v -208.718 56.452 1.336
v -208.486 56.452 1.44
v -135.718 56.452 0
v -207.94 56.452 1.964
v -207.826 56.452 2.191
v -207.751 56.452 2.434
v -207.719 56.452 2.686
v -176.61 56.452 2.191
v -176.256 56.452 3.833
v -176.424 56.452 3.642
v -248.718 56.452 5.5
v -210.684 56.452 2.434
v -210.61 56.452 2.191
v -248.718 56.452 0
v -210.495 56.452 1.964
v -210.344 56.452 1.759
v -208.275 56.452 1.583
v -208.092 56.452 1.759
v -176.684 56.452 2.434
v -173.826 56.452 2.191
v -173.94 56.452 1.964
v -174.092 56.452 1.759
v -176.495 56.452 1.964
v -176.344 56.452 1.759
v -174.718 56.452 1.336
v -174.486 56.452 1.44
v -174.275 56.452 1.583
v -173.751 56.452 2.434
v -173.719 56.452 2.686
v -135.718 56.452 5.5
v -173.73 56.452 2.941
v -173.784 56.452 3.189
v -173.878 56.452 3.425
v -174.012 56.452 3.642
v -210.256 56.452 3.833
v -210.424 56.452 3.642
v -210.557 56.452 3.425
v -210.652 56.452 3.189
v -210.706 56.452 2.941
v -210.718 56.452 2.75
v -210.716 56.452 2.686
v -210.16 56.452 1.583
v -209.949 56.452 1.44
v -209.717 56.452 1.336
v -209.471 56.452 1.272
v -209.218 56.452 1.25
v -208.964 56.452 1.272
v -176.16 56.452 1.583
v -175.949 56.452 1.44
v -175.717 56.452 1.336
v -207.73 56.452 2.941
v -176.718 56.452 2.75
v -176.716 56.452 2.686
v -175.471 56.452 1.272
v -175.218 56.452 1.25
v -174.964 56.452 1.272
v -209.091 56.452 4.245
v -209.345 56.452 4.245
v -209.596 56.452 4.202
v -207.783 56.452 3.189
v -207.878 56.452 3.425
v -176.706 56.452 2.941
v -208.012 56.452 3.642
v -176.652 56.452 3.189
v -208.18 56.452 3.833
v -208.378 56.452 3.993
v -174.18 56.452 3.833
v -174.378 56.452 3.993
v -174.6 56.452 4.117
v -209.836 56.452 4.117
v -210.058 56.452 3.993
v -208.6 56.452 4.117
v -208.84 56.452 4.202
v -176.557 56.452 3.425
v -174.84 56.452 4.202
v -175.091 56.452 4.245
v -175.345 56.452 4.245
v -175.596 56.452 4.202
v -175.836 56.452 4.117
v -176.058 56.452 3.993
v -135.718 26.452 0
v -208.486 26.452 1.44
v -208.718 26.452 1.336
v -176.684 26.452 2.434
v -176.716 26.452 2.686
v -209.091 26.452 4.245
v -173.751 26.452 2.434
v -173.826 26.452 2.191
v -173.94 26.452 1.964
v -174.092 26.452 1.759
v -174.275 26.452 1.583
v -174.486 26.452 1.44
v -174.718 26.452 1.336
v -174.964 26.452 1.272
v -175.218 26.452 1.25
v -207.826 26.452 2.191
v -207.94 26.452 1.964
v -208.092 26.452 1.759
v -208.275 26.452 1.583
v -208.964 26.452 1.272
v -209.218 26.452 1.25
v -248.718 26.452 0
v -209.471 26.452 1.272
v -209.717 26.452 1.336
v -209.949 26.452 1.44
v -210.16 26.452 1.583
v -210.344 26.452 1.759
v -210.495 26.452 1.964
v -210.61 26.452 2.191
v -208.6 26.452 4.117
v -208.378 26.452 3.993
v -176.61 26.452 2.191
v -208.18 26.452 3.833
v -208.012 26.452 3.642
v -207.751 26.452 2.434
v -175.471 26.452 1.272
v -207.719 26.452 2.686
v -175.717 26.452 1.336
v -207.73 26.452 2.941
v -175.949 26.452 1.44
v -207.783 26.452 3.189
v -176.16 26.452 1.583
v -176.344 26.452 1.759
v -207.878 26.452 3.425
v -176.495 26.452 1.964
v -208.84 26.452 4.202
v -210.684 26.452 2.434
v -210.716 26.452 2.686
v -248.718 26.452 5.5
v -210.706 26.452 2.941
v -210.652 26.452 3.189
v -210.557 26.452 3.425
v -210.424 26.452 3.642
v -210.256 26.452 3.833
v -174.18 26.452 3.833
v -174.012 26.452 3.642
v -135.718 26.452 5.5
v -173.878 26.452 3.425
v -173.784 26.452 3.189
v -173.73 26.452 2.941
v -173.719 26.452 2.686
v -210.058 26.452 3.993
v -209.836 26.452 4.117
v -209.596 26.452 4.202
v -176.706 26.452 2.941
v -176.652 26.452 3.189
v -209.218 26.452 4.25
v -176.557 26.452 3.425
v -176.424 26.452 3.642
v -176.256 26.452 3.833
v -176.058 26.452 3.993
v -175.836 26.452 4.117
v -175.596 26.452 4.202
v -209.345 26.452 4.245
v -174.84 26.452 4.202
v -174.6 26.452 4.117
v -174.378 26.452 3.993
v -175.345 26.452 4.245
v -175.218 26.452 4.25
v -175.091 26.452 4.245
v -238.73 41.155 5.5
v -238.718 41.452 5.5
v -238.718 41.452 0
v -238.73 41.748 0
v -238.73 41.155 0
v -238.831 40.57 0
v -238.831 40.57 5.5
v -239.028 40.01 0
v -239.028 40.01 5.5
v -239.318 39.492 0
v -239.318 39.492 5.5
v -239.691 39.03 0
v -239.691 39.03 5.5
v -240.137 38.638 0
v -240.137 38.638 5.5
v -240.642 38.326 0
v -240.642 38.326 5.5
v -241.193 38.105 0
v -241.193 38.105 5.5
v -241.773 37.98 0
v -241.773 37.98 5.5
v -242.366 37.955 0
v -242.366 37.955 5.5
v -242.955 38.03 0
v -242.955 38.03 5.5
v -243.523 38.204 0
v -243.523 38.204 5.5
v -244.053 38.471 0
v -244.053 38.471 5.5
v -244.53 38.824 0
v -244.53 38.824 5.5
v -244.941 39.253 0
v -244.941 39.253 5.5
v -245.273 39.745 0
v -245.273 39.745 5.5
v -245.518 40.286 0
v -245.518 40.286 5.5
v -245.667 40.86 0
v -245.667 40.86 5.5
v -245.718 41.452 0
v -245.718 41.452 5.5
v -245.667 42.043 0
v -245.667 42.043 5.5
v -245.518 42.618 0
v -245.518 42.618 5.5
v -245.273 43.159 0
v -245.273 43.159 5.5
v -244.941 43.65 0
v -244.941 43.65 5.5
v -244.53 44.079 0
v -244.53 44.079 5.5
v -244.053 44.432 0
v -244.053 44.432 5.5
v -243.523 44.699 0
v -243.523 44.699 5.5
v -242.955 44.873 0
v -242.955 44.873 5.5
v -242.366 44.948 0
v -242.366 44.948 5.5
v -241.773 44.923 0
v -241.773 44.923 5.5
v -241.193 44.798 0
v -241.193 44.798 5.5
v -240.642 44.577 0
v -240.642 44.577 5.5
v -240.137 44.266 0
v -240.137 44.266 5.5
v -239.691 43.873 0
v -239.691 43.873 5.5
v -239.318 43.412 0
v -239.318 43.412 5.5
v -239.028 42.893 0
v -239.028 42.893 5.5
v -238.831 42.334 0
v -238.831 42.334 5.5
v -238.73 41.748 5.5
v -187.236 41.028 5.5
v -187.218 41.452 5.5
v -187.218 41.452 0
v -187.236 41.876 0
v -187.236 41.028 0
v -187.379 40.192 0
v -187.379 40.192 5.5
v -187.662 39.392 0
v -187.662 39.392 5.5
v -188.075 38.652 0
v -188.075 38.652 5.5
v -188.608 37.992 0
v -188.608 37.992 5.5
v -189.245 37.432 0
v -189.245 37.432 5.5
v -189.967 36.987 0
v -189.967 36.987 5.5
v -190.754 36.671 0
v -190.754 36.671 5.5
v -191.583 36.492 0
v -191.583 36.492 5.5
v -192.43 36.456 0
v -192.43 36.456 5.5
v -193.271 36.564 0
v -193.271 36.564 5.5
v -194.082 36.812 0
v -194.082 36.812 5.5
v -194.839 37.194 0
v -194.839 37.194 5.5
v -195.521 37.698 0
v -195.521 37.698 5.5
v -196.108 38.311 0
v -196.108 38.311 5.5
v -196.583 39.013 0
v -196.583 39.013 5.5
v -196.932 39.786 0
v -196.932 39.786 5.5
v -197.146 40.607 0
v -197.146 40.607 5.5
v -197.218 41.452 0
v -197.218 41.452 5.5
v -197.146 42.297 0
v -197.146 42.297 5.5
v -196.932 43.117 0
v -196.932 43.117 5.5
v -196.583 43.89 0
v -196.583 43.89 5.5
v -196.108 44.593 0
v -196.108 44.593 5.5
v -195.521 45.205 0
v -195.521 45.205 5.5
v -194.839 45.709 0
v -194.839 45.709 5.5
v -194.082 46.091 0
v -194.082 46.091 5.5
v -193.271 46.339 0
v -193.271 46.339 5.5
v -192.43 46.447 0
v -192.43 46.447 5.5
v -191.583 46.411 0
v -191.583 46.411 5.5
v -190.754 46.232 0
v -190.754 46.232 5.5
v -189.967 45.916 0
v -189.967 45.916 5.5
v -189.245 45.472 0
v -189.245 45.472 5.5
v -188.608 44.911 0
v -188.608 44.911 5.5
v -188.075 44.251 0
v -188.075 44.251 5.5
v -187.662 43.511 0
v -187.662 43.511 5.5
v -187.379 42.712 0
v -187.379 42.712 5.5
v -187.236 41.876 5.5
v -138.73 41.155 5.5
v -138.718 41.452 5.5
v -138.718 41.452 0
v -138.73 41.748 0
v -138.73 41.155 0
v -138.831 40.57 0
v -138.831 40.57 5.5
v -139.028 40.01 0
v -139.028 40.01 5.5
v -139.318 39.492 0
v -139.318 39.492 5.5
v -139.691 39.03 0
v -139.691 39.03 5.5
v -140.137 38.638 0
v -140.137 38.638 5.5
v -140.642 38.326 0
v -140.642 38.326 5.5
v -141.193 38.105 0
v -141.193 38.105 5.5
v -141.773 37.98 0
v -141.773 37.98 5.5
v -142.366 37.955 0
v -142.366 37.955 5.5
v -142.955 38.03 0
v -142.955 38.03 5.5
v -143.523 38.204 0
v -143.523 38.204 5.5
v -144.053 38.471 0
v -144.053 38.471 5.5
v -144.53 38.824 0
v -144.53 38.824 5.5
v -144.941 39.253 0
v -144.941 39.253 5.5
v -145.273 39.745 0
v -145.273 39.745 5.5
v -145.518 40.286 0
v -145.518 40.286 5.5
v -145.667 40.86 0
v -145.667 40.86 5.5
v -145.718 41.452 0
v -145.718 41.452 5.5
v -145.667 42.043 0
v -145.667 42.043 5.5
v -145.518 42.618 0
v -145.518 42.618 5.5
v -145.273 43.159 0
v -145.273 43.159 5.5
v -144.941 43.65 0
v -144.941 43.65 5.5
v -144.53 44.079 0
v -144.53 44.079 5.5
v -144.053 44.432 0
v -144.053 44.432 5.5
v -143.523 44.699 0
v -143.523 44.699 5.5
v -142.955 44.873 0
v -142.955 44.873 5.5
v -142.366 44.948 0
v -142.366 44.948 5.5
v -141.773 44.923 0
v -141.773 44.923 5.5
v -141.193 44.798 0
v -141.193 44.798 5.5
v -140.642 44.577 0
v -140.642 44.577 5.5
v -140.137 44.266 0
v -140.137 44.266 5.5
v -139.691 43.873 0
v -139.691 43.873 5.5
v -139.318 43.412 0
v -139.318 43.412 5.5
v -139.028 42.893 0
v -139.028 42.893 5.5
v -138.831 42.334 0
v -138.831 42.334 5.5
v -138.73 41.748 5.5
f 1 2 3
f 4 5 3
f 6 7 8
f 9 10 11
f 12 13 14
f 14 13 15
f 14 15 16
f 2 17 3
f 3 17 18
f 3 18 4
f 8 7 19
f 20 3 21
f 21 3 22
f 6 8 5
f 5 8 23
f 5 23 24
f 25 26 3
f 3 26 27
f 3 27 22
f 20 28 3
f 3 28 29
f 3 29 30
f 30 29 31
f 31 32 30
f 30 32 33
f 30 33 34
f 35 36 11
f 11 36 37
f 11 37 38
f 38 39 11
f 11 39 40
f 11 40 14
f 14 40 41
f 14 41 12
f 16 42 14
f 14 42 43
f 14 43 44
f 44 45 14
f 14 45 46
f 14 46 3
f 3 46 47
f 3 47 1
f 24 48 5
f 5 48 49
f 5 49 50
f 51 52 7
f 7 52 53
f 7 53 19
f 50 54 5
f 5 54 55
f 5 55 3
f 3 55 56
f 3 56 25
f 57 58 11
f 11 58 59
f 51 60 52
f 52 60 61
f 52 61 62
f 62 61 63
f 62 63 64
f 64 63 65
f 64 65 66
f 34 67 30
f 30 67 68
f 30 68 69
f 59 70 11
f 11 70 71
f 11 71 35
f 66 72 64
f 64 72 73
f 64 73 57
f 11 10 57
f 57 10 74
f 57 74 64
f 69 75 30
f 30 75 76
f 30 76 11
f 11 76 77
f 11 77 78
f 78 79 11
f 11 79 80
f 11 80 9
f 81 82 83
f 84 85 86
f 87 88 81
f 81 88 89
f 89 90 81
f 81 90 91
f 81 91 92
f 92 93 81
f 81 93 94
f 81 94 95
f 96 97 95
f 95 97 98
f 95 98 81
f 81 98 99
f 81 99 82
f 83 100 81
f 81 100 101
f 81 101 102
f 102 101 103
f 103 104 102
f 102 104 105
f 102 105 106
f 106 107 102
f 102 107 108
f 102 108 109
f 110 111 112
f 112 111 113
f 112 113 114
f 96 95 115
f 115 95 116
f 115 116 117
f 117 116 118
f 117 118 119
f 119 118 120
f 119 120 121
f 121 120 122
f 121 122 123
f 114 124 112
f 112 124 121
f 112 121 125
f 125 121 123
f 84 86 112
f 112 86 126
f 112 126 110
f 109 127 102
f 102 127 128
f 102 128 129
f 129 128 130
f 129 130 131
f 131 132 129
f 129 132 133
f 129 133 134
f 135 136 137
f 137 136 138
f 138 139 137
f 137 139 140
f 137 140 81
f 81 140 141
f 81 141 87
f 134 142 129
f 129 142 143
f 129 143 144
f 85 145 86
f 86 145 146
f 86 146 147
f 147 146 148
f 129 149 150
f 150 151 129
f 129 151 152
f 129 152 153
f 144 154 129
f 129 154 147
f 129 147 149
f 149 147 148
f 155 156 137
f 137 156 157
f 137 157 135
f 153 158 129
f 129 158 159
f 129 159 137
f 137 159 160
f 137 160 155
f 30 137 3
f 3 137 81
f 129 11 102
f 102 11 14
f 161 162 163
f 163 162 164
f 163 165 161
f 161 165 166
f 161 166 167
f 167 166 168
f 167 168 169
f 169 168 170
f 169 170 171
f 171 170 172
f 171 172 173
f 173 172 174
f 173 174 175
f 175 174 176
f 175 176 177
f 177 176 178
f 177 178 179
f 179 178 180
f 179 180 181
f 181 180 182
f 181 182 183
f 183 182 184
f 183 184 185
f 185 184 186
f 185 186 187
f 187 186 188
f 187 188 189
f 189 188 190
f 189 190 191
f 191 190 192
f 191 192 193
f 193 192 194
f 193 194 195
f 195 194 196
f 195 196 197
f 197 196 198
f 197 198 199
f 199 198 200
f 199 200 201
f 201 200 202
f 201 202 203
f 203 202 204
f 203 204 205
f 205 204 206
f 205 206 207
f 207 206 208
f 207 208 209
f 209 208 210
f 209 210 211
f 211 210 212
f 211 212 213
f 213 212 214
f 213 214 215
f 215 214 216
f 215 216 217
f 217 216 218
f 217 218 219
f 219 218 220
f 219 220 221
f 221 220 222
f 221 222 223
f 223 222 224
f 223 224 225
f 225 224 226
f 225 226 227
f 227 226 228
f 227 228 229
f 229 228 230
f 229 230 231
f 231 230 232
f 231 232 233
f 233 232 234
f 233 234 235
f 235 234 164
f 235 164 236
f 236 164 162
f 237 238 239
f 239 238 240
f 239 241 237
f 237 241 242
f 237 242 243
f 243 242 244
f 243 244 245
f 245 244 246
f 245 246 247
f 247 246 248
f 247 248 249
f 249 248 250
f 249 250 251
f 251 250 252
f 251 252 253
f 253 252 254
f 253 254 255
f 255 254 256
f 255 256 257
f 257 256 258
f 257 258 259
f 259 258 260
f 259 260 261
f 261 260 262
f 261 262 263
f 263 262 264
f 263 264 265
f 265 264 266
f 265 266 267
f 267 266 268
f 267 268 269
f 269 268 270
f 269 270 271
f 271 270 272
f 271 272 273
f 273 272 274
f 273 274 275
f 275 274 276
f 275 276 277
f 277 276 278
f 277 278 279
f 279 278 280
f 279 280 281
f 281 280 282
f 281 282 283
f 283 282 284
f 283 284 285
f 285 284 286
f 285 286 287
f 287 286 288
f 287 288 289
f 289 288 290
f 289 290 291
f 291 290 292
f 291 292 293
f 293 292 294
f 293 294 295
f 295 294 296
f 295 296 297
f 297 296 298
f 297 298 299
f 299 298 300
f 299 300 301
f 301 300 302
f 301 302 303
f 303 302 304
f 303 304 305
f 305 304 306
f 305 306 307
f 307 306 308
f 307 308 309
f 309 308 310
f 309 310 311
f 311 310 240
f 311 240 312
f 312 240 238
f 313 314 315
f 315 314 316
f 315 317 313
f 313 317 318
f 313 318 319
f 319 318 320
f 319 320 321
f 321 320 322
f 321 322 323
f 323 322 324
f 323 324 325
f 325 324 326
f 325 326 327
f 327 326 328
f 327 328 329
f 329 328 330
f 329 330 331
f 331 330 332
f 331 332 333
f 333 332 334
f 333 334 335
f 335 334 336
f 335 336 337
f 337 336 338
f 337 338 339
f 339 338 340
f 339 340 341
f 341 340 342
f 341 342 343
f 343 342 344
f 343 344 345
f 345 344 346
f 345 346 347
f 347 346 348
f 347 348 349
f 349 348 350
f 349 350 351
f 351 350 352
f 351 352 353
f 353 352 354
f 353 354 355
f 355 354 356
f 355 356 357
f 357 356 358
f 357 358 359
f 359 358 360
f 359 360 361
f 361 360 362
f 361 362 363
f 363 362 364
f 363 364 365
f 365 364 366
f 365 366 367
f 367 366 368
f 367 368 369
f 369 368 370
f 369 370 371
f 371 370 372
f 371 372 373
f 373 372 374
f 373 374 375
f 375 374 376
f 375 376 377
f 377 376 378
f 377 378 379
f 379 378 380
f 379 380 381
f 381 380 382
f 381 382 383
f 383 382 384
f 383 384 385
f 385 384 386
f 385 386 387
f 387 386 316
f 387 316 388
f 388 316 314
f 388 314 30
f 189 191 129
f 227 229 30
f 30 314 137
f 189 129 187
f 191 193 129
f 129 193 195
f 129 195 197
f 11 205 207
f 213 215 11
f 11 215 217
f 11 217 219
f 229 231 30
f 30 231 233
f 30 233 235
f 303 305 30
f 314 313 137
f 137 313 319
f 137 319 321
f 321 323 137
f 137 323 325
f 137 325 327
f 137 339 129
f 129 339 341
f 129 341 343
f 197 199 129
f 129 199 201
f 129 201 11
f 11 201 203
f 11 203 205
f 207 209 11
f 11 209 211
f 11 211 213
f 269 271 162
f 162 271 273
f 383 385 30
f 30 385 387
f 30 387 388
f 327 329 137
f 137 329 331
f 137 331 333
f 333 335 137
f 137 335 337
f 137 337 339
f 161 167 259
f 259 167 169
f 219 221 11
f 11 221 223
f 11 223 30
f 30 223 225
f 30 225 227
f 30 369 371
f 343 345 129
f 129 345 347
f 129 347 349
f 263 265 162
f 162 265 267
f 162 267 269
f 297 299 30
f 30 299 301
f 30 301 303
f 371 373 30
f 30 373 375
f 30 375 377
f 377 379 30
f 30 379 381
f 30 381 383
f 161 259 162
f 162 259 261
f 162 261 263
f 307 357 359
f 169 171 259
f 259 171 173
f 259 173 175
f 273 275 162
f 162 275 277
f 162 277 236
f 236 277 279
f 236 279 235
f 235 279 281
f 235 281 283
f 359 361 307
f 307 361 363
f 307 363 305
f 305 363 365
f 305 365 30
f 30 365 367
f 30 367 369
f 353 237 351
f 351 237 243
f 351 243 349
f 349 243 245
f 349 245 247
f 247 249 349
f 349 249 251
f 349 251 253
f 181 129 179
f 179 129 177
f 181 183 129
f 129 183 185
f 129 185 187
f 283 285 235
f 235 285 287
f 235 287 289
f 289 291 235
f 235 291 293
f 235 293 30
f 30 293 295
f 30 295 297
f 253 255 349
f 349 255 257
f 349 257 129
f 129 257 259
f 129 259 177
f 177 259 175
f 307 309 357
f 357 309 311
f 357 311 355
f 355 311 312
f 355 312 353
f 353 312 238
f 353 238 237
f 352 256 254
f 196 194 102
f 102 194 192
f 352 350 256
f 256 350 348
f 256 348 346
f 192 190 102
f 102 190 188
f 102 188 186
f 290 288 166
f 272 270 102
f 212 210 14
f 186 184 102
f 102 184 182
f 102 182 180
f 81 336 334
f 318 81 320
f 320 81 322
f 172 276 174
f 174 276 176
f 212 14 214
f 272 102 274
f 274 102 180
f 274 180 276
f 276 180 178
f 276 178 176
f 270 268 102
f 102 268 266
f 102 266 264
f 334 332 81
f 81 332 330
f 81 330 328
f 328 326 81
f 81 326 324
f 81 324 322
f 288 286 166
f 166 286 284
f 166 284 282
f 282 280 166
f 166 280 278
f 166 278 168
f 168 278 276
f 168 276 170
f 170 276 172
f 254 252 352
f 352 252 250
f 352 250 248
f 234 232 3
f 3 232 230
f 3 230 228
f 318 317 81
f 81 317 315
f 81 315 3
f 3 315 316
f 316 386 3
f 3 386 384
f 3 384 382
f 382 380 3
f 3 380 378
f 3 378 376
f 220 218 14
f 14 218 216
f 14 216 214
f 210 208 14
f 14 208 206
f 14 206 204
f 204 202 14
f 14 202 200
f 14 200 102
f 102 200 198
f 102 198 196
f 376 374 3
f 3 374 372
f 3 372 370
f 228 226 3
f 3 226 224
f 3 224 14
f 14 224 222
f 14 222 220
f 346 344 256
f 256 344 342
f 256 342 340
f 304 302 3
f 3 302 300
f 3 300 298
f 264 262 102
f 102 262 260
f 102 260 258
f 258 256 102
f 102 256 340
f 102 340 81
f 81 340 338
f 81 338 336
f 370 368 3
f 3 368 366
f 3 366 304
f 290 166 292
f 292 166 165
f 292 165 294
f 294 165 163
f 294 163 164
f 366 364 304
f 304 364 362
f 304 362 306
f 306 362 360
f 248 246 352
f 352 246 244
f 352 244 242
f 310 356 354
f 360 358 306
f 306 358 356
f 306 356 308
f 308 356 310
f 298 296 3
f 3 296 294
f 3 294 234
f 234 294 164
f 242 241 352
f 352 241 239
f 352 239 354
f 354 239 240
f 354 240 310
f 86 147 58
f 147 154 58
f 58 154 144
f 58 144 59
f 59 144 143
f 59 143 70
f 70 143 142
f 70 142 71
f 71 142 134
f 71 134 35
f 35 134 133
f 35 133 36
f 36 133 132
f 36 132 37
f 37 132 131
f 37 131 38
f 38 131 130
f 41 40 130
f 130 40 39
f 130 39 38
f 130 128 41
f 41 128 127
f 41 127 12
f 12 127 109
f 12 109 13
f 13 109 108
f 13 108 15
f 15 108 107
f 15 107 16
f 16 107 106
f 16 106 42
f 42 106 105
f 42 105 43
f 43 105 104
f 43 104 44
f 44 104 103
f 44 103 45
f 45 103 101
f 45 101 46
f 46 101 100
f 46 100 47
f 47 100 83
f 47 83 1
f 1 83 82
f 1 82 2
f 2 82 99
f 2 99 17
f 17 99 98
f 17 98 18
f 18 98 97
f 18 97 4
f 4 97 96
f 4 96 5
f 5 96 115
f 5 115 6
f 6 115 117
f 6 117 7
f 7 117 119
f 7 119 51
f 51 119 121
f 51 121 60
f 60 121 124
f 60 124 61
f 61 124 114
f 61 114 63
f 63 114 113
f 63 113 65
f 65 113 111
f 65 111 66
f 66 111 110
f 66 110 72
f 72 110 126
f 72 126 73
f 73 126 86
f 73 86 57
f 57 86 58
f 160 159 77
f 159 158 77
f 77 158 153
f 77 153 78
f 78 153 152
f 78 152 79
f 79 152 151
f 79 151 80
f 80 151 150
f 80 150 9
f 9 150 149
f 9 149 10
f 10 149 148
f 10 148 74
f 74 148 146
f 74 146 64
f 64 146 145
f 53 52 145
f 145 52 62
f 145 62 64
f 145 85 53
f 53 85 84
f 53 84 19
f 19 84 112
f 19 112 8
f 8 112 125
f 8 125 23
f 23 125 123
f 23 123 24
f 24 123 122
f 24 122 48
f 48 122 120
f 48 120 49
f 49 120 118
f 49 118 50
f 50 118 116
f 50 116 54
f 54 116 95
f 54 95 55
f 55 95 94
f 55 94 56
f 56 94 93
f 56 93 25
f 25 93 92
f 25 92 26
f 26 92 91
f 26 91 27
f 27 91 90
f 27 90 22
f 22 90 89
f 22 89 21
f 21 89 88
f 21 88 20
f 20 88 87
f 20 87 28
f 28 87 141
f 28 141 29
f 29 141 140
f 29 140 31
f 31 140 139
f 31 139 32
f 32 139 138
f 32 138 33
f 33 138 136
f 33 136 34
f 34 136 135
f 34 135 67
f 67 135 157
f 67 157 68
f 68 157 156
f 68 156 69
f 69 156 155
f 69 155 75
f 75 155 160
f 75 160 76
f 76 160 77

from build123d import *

# Parameters (mm, degrees)
ESBO_O1_W                  = 113
ESBO_O1_H                  = 30
ESBO_O1_R                  = 5
ESBO_O1_R_2                = 3.5
RESSALTO_EXTRUS_O1_DEPTH   = 5.5
ESBO_O2_R                  = 1.5
CORTE_EXTRUS_O1_DEPTH      = 110
CORTE_EXTRUS_O1_DEPTH_BACK = 77.5


with BuildPart() as part:
    # Esboço1 → Ressalto-extrusão1 (new body)
    with BuildSketch(Plane.XY):
        with Locations((-192.217741935, 41.451612903)):
            Rectangle(ESBO_O1_W, ESBO_O1_H)
        with Locations((-192.217741935, 41.451612903)):
            Circle(ESBO_O1_R, mode=Mode.SUBTRACT)
        with Locations((-242.217741935, 41.451612903)):
            Circle(ESBO_O1_R_2, mode=Mode.SUBTRACT)
        with Locations((-142.217741935, 41.451612903)):
            Circle(ESBO_O1_R_2, mode=Mode.SUBTRACT)
    extrude(amount=RESSALTO_EXTRUS_O1_DEPTH)

    # Esboço2 → Corte-extrusão1 (cut, two sides)
    with BuildSketch(Plane(origin=(0, 0, 0), x_dir=(1, 0, 0), z_dir=(0, 1, 0))) as corte_extrus_o1_sk:
        with Locations((-209.217741935, -2.75)):
            Circle(ESBO_O2_R)
        with Locations((-175.217741935, -2.75)):
            Circle(ESBO_O2_R)
    extrude(amount=CORTE_EXTRUS_O1_DEPTH, mode=Mode.SUBTRACT)
    extrude(corte_extrus_o1_sk.sketch, amount=-CORTE_EXTRUS_O1_DEPTH_BACK, mode=Mode.SUBTRACT)


solid = part.part
